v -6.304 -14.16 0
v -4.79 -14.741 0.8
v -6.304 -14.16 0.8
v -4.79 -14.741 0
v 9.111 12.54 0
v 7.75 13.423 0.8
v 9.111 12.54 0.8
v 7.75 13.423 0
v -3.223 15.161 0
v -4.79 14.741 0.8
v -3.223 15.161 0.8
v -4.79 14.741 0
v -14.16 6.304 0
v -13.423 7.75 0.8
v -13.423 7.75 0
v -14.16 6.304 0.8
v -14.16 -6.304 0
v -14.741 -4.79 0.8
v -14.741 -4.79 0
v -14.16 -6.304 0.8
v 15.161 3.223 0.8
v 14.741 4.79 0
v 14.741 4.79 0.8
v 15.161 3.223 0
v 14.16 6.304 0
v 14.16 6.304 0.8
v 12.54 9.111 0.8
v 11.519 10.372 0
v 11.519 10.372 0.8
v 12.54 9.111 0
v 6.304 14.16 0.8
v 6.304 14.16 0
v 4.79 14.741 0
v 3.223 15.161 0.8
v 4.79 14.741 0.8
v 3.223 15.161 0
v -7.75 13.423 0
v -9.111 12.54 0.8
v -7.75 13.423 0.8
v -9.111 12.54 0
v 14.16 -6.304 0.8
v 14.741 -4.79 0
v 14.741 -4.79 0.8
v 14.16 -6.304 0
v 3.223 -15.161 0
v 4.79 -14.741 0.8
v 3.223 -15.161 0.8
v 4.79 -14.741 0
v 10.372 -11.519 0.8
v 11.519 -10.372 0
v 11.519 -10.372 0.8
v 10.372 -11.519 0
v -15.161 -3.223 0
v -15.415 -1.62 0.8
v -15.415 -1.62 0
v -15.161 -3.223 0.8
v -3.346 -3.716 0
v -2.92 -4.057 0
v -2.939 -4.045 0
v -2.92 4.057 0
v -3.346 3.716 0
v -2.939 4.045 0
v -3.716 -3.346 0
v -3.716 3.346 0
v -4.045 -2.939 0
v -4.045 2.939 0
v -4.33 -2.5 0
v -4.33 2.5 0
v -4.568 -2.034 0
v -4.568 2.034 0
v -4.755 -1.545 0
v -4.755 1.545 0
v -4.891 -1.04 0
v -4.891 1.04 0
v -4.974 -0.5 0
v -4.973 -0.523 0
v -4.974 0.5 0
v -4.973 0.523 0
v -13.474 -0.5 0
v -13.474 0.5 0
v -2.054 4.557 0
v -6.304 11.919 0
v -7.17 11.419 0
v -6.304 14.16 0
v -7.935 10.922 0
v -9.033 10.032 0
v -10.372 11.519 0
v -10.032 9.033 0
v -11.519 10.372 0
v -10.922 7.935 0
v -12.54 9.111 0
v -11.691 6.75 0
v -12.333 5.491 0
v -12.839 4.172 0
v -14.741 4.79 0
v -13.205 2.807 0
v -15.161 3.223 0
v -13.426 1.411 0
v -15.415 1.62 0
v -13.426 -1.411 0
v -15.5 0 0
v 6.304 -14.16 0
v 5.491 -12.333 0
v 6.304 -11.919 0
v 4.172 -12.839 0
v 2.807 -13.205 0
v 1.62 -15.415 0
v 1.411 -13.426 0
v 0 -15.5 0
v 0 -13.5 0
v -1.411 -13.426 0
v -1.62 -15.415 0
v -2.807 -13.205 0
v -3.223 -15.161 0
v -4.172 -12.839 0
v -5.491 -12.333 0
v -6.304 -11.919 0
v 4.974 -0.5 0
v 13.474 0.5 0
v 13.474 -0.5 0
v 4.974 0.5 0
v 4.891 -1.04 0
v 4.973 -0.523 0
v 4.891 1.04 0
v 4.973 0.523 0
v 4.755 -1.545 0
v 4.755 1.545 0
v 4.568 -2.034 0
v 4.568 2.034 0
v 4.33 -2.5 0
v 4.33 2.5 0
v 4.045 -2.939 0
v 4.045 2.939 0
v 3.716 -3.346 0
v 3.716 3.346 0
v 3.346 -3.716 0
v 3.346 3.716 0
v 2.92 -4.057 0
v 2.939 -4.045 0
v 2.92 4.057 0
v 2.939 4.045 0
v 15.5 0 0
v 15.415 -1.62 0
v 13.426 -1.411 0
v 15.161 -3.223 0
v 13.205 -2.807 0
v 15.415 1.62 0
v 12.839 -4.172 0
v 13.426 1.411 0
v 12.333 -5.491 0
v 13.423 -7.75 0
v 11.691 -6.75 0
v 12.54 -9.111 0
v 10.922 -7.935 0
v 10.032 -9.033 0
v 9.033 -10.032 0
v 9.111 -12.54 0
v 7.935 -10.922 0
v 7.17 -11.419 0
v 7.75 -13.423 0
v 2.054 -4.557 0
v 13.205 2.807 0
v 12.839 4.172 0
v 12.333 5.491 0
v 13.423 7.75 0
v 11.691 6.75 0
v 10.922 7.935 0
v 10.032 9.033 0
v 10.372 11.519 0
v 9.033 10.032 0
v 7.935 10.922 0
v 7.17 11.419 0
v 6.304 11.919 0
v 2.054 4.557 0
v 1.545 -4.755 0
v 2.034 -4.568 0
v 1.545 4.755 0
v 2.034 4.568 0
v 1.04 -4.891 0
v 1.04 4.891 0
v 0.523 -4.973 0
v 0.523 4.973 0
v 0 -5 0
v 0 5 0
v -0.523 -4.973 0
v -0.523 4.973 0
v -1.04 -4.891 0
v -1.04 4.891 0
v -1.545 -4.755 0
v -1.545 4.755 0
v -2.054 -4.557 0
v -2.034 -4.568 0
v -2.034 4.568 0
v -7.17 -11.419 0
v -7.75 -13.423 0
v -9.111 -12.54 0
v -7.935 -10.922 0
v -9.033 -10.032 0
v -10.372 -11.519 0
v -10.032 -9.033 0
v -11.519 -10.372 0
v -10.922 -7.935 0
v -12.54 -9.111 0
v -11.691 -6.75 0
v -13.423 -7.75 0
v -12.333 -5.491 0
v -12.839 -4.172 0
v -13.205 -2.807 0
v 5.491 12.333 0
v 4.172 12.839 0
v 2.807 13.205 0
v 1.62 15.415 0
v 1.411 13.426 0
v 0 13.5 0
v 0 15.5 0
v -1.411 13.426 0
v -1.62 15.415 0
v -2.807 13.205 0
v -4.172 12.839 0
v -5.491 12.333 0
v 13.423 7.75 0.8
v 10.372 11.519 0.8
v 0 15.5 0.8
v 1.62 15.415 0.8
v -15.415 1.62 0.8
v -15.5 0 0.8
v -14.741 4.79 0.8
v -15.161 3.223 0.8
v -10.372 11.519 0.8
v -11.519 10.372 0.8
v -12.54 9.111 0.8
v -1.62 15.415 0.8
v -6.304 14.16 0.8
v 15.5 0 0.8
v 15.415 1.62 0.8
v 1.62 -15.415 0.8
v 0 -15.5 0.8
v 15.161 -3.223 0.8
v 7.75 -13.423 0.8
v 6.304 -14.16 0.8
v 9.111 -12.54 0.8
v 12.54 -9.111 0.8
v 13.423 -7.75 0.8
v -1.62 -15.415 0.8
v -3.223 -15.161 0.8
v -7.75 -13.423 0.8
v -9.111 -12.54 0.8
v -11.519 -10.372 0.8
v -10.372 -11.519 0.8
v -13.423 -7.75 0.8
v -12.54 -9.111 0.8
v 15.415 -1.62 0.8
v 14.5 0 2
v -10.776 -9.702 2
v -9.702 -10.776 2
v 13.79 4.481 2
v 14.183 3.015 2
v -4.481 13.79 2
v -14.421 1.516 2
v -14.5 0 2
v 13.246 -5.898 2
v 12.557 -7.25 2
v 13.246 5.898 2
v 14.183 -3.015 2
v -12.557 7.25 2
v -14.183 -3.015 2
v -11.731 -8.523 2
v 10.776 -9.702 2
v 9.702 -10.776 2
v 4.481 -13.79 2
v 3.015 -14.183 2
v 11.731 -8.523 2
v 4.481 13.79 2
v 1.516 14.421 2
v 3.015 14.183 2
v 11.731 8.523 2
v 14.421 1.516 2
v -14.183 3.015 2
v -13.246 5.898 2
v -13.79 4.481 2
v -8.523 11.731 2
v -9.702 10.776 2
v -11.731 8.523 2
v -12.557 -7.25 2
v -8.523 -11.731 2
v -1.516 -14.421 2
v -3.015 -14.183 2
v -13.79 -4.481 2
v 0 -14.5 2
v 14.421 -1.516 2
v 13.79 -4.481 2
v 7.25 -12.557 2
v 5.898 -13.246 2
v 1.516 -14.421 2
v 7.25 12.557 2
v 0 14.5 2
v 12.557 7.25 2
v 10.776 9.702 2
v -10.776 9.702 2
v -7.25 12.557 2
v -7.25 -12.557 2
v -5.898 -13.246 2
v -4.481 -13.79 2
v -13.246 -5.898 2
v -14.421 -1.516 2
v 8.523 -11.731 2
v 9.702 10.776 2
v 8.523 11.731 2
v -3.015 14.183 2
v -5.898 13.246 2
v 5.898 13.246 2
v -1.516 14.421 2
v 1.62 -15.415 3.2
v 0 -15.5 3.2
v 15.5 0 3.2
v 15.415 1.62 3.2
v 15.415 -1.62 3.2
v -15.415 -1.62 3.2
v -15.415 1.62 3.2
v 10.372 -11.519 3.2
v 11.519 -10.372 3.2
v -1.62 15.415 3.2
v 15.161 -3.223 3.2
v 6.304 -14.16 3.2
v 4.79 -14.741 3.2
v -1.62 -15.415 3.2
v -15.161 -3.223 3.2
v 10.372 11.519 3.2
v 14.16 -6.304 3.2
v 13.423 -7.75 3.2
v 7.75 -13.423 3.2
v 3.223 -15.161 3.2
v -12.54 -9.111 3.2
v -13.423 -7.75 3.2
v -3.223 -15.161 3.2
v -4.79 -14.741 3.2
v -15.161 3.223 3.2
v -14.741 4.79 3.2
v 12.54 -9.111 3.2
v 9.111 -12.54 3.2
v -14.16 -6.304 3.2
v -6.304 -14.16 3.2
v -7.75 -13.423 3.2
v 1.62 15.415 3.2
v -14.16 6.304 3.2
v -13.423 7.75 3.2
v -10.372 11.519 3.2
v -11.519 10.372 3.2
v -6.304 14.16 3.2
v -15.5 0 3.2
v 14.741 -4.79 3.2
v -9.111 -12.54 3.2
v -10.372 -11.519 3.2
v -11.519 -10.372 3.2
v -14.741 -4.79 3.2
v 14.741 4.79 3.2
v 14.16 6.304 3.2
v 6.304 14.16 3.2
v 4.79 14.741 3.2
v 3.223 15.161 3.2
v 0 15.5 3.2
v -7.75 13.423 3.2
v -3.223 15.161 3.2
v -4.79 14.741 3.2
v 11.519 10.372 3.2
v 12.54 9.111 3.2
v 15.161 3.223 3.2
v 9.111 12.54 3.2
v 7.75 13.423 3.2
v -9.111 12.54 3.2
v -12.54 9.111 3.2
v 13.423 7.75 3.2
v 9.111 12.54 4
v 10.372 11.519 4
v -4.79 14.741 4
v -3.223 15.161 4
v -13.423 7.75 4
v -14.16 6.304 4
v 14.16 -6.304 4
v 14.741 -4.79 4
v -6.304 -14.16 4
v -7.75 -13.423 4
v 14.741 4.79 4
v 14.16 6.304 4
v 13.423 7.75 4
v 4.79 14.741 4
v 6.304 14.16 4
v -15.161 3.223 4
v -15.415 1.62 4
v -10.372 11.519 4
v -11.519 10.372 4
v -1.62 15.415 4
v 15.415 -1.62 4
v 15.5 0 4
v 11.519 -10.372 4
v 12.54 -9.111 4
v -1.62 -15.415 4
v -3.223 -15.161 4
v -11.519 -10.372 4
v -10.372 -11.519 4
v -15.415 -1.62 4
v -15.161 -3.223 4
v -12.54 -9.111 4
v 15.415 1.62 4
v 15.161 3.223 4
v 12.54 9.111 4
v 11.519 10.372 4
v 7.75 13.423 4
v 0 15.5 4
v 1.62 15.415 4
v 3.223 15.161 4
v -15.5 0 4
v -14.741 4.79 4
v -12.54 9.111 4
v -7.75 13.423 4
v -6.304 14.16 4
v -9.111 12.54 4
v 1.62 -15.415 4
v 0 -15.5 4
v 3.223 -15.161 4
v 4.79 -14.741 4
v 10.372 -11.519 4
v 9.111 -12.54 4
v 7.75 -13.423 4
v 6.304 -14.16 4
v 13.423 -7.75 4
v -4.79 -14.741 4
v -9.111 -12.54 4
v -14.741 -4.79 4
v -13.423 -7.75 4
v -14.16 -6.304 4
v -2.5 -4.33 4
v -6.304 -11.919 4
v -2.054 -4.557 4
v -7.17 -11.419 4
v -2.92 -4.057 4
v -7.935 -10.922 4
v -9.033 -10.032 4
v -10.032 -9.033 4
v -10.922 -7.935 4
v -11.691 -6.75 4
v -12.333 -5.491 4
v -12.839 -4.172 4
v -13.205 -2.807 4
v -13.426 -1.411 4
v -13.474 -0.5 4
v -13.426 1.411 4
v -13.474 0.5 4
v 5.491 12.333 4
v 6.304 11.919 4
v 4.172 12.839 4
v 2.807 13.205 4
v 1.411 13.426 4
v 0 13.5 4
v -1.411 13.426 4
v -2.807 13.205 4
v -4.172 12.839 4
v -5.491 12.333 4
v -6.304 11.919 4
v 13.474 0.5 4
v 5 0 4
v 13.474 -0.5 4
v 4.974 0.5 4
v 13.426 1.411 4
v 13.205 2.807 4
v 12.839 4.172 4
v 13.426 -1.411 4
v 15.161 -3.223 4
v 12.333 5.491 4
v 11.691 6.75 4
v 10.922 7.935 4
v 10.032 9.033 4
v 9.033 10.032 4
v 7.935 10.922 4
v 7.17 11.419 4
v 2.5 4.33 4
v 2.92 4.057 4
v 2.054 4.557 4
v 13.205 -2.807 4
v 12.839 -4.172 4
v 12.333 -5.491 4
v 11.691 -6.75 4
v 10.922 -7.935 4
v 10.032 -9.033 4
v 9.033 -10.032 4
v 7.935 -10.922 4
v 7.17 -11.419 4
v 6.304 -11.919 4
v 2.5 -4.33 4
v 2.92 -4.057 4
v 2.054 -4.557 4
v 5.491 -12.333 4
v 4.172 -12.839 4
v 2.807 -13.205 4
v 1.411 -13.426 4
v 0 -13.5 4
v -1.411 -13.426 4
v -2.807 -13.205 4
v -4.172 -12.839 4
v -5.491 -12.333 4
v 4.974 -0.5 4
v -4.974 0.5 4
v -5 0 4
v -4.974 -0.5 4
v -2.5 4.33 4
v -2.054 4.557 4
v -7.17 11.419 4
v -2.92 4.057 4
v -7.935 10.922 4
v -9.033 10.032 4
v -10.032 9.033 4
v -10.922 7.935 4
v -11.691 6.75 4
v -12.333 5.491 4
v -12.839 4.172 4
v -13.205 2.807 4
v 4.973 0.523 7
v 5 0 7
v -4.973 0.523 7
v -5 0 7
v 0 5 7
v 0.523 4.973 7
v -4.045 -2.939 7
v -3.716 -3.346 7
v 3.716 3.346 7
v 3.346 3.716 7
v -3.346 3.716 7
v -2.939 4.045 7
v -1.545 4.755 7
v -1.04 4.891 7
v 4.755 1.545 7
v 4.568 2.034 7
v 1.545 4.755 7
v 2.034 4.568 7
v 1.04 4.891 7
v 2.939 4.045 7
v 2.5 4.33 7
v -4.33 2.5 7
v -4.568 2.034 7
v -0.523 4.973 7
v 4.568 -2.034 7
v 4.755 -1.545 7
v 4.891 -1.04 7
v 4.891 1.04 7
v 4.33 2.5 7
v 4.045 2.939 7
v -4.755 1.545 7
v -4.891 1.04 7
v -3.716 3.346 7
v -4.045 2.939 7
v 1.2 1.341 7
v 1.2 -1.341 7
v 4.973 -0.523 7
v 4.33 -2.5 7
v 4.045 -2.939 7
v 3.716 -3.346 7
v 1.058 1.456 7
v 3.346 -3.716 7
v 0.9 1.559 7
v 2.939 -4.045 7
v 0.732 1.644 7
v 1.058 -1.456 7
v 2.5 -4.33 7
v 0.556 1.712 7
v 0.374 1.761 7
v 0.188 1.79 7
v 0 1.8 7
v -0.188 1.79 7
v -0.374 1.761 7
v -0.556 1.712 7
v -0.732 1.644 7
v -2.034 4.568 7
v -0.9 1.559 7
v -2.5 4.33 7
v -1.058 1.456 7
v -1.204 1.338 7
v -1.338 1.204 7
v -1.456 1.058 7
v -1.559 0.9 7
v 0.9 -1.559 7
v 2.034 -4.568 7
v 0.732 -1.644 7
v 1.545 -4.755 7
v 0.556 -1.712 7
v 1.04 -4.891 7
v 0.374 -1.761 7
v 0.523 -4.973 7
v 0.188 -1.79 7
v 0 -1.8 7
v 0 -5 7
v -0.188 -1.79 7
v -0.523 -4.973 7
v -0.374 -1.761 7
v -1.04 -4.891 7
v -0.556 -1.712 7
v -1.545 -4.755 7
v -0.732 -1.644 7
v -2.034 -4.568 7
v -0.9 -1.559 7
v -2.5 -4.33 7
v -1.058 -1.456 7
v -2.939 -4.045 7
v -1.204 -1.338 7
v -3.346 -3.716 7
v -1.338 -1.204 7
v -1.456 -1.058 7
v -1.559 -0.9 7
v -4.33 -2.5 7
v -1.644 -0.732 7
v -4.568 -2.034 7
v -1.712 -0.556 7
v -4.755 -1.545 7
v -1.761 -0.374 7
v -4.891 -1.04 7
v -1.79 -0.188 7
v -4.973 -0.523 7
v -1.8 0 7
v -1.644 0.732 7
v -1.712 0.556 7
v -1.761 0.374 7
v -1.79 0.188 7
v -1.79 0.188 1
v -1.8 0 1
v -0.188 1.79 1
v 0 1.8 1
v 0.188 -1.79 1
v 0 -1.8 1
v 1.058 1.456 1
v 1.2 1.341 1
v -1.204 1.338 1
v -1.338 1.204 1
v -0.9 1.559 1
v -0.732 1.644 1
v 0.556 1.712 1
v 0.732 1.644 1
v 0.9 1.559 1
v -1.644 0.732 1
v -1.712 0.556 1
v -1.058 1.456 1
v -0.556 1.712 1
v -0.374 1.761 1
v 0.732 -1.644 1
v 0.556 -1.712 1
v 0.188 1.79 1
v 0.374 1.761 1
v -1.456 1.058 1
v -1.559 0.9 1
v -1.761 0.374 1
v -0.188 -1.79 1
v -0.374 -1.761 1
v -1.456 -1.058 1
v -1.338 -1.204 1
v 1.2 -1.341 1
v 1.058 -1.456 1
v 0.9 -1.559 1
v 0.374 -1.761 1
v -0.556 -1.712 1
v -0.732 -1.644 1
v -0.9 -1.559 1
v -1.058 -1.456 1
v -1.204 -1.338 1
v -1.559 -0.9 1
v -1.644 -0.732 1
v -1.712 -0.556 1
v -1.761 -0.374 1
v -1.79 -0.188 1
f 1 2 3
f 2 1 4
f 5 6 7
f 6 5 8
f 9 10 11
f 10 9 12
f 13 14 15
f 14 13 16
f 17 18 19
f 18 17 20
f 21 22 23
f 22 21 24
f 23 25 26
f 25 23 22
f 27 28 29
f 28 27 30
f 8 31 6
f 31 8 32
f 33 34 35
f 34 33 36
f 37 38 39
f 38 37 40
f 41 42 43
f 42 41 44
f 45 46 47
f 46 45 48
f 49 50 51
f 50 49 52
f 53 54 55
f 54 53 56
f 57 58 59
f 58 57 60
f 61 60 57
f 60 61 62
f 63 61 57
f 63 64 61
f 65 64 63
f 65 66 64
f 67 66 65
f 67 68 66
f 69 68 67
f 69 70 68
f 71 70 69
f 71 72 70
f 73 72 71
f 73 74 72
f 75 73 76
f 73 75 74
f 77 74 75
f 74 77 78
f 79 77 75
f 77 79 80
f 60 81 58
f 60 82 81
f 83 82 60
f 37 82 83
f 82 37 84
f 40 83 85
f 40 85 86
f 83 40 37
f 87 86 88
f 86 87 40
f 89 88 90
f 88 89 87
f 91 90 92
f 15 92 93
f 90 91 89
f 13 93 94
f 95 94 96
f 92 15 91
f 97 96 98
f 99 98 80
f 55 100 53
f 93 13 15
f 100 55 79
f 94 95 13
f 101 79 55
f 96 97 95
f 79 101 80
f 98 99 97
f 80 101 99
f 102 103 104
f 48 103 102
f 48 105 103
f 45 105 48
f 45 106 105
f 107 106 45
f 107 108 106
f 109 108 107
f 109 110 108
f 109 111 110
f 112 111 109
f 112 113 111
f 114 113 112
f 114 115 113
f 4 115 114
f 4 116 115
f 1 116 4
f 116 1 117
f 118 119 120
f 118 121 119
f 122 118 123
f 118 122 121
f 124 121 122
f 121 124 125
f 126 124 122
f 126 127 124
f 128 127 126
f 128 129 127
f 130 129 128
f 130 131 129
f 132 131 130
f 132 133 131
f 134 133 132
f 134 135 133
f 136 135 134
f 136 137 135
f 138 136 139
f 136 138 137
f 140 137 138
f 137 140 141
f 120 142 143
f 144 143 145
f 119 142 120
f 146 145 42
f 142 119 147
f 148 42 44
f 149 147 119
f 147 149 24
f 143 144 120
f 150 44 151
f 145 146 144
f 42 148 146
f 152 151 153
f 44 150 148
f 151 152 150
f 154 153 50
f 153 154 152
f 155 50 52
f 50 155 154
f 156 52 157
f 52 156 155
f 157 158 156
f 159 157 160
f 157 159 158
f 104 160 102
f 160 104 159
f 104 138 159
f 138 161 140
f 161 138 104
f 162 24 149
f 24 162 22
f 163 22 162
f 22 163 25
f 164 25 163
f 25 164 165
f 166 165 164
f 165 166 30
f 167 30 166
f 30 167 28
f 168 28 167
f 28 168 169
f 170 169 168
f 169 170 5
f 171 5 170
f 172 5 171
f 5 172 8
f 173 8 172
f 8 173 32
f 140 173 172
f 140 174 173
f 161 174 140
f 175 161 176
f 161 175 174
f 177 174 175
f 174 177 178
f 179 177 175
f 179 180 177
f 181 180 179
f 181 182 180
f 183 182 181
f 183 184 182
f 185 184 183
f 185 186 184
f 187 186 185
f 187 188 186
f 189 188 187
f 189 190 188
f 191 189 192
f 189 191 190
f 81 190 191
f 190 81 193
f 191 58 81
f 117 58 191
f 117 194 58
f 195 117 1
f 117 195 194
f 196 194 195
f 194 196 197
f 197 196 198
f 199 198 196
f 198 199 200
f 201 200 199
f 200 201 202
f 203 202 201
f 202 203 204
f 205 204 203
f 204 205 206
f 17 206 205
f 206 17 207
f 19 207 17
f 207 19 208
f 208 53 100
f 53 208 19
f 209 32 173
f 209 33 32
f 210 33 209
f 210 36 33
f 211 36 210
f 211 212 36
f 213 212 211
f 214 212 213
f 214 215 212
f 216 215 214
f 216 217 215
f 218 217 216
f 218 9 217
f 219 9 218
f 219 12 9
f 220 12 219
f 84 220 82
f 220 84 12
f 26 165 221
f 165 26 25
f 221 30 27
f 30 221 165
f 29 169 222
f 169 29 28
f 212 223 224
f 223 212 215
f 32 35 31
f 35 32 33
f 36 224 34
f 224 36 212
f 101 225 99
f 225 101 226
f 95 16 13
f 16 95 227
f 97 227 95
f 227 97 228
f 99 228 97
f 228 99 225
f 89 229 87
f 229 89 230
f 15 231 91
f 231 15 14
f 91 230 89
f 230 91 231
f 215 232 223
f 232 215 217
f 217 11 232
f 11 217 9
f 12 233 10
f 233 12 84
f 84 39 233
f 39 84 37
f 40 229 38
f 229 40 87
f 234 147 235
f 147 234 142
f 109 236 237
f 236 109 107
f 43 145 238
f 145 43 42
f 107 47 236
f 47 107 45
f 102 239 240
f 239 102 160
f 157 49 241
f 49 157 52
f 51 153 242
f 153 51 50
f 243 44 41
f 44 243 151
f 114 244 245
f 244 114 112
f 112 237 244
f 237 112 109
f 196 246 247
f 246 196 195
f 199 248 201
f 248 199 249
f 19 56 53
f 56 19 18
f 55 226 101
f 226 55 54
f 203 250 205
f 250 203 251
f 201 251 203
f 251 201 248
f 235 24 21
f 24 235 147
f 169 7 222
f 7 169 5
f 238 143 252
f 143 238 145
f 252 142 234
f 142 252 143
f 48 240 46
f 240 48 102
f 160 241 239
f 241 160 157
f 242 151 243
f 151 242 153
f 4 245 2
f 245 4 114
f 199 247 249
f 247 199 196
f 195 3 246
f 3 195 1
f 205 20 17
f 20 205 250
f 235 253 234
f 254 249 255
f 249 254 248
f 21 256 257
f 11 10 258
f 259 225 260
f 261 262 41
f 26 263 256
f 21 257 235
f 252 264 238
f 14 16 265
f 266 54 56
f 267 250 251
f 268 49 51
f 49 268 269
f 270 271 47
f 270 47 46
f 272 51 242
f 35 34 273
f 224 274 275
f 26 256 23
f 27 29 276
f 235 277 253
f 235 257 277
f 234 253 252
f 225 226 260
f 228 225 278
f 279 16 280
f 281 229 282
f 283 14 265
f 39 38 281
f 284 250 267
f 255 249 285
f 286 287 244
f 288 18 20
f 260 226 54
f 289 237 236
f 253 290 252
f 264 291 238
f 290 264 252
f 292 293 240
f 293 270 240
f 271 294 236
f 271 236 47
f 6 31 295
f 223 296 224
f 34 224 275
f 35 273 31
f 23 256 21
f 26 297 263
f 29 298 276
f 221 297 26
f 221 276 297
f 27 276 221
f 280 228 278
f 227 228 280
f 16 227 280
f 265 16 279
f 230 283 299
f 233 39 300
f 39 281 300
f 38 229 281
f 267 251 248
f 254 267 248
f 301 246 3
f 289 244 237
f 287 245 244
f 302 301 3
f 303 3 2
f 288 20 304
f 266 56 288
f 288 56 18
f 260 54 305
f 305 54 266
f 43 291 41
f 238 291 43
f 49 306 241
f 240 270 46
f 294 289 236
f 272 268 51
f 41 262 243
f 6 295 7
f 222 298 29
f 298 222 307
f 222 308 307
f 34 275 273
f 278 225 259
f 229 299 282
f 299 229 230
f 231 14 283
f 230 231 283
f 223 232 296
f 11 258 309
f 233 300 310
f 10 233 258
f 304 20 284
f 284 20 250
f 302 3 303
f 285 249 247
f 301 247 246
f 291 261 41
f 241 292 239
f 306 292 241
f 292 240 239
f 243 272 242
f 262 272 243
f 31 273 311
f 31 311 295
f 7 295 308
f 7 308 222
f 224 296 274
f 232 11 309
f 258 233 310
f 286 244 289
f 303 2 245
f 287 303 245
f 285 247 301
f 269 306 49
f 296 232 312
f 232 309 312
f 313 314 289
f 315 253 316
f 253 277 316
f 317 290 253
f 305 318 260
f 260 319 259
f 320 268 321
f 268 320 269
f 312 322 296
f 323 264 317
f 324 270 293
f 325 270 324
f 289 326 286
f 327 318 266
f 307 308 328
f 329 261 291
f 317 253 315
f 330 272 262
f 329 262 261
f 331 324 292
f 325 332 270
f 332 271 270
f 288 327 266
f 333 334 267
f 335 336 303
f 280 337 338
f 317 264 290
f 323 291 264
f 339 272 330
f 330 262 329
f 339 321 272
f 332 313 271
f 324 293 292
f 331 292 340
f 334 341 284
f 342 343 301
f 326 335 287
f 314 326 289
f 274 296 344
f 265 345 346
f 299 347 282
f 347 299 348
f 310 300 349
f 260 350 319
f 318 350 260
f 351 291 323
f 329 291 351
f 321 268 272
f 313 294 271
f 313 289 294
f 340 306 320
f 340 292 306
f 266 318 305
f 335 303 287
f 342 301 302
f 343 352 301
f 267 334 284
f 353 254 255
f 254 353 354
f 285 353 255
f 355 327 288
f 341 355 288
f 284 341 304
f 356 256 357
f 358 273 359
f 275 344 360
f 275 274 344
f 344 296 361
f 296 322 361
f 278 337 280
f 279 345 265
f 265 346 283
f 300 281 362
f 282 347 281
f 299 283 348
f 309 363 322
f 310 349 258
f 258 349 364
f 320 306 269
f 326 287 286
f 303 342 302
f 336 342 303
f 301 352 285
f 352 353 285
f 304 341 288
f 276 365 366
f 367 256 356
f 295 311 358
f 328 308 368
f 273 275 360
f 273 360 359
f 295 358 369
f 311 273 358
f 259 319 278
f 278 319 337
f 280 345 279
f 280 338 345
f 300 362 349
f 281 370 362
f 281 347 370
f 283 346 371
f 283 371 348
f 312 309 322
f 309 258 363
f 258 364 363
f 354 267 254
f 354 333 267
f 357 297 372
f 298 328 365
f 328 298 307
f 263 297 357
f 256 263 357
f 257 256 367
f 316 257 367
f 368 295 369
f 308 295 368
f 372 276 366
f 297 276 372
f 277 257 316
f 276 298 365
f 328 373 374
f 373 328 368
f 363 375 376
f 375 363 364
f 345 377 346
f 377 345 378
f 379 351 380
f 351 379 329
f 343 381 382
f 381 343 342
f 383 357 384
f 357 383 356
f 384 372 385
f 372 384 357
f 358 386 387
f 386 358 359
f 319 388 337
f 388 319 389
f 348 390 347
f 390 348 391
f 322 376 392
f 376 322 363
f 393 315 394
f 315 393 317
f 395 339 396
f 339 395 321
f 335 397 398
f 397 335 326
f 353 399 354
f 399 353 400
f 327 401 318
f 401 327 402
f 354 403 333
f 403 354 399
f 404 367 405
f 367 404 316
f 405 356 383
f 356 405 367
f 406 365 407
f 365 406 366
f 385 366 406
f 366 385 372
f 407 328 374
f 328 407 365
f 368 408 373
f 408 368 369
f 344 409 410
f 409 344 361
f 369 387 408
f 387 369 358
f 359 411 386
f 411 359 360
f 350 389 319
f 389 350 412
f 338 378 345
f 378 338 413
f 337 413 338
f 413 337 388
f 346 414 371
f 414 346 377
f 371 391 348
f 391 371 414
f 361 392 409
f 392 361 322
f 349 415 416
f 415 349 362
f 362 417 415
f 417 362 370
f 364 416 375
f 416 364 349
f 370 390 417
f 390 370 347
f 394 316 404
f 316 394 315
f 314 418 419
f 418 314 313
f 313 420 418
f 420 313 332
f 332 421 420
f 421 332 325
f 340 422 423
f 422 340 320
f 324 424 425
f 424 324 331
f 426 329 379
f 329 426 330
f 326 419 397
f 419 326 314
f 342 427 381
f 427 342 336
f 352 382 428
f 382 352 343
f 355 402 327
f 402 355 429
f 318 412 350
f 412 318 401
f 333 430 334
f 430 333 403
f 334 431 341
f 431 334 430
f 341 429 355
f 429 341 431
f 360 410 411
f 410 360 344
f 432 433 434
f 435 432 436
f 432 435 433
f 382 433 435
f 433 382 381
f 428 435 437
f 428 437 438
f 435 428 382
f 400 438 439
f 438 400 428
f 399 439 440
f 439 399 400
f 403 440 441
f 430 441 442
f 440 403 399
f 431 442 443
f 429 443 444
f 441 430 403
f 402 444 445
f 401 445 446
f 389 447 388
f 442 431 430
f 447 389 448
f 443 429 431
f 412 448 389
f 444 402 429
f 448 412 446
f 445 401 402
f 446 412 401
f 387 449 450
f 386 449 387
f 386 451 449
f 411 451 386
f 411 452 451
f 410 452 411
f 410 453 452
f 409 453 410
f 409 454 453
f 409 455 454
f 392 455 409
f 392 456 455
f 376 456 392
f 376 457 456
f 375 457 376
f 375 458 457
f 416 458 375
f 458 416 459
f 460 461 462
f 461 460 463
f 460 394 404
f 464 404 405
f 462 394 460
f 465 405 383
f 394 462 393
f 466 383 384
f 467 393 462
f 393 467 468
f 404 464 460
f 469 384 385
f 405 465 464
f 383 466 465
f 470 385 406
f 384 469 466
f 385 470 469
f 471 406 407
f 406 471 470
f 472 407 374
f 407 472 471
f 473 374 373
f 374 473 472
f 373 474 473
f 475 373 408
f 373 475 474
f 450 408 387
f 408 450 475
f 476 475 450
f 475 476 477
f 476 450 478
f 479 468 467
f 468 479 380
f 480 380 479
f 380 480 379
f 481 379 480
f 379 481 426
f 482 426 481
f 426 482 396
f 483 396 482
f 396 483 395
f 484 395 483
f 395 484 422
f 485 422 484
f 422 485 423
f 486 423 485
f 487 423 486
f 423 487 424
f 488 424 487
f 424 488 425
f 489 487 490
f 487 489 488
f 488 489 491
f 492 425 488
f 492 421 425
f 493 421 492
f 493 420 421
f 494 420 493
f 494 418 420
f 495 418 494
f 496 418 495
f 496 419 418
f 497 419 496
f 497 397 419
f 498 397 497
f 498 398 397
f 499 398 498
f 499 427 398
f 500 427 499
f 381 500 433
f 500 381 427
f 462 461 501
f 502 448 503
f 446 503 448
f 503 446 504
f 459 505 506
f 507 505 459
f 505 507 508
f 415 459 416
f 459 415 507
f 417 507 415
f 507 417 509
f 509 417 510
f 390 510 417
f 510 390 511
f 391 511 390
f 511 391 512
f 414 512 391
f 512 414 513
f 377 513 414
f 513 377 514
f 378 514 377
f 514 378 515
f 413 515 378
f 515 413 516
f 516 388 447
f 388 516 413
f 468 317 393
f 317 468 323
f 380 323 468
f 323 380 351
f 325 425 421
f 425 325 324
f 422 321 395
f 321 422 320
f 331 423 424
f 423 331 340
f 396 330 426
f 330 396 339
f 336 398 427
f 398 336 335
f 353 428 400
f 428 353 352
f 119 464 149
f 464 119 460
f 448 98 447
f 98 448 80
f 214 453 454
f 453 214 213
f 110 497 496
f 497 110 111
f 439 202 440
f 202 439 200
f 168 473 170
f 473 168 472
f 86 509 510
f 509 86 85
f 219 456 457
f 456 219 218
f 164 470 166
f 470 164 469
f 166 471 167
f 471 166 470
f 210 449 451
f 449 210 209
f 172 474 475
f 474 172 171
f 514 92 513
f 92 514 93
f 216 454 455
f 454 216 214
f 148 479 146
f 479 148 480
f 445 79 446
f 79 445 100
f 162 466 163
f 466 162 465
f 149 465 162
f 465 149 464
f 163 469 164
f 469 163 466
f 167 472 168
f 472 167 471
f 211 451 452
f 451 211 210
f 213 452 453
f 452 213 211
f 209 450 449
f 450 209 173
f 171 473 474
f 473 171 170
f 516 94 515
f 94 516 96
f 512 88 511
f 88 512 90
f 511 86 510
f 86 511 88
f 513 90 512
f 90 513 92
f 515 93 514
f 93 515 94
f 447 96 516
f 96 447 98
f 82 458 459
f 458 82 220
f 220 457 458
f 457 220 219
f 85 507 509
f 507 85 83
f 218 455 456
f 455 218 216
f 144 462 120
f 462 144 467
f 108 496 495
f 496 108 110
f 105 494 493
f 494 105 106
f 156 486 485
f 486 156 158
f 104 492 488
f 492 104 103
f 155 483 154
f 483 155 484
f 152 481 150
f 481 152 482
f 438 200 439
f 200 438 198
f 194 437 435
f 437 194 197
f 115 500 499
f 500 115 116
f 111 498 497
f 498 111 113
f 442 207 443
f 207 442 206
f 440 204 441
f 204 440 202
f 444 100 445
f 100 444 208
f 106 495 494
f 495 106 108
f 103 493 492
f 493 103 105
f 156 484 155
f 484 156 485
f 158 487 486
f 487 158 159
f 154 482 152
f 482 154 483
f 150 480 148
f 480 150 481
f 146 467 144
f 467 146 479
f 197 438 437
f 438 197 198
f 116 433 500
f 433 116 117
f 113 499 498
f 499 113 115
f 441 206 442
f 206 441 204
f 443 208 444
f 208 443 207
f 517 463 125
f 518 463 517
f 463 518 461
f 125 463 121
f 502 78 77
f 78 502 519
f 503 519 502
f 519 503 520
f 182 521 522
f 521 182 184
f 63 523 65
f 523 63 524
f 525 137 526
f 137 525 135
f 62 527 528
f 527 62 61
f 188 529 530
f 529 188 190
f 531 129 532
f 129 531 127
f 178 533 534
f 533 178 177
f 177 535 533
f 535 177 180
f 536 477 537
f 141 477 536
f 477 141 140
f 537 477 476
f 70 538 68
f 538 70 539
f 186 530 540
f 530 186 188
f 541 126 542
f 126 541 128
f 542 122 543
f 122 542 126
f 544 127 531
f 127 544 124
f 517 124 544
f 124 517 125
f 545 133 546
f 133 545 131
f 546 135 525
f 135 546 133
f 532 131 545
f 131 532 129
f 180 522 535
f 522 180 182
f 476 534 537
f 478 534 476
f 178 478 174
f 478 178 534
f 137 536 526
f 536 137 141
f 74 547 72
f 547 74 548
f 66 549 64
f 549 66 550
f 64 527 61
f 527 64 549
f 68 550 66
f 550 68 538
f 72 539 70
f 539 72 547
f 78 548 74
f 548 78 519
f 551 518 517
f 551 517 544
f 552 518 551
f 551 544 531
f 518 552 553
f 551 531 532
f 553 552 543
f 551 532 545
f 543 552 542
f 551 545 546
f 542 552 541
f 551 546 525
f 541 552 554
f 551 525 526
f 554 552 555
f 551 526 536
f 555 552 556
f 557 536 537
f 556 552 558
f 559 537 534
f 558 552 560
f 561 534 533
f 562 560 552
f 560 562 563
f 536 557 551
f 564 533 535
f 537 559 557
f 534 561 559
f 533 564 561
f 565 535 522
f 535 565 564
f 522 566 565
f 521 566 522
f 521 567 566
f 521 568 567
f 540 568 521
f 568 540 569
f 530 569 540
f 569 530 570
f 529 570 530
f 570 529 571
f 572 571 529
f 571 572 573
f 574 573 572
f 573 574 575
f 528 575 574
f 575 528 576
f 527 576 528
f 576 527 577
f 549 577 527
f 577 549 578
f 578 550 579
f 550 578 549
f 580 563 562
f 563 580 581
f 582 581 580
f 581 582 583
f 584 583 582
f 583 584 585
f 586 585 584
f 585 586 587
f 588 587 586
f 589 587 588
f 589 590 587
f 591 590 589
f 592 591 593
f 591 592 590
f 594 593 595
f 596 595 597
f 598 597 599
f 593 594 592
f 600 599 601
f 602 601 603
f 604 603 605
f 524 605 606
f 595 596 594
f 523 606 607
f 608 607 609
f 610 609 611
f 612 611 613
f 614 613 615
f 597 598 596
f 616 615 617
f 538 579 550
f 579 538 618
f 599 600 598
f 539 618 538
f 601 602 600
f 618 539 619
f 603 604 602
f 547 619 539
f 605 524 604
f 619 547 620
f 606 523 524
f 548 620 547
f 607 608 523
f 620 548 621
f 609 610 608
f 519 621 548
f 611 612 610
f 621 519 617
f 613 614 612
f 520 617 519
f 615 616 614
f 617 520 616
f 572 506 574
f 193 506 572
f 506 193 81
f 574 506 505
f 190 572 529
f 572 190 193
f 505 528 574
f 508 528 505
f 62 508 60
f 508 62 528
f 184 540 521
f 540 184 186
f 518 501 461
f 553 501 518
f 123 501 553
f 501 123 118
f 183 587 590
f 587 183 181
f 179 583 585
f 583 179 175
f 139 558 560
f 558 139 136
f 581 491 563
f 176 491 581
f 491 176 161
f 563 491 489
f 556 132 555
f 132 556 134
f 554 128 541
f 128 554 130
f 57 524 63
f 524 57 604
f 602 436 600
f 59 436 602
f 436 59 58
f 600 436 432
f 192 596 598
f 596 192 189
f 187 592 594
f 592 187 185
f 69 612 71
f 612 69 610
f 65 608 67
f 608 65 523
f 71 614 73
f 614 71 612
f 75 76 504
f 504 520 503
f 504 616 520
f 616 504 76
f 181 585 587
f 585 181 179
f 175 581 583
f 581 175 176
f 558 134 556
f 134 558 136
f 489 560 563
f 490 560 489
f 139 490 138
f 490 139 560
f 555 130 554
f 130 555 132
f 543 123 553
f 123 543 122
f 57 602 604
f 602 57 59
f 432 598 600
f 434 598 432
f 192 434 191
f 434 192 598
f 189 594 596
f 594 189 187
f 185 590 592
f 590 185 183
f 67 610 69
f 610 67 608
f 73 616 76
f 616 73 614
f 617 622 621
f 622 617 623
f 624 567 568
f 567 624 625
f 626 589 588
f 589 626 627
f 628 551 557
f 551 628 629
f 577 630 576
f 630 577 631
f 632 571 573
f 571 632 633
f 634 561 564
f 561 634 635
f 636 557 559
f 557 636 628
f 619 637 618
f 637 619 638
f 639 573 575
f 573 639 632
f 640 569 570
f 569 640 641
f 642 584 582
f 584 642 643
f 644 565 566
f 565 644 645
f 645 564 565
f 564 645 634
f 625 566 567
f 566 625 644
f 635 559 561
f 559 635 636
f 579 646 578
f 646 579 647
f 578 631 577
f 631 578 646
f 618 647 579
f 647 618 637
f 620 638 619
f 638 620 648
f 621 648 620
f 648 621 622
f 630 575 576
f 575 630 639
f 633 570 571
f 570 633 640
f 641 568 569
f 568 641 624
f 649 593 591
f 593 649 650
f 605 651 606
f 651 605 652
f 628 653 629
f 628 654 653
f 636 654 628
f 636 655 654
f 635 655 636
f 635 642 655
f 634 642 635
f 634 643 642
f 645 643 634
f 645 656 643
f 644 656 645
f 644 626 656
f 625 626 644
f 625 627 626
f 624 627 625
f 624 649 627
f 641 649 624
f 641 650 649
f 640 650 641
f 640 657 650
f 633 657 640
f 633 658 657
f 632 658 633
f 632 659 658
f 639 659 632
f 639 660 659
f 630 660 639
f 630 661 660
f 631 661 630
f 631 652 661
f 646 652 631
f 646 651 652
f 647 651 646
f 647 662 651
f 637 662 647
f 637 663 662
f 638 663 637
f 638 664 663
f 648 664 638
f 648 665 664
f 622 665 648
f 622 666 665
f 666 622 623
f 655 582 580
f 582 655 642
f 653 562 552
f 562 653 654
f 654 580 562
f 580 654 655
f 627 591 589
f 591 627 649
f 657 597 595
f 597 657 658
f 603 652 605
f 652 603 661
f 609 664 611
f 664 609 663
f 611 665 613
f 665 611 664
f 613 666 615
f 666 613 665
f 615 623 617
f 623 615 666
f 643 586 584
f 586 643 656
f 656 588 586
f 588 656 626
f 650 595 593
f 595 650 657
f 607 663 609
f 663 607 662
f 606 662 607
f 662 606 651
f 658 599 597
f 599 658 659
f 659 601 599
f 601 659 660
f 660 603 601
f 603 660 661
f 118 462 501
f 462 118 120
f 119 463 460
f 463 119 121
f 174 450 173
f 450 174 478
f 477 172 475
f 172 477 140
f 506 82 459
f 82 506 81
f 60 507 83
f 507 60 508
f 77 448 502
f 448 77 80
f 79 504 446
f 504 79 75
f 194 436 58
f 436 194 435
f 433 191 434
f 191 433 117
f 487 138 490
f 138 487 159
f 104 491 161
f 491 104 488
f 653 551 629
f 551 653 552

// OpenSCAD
// Roda de 32mm (amb junta tòrica) i tope per a micromotor de 3mm de eix
$fn=60;
d_eje=3.6;
r_ext=15.5;

union(){
    difference() {
        union(){
            cylinder(h=.8,r1=r_ext,r2=r_ext);
            translate([0,0,.8]){
                cylinder(h=1.2,r1=r_ext,r2=r_ext-1);
            }
            translate([0,0,2]){
                cylinder(h=1.2,r1=r_ext-1,r2=r_ext);
            }
            translate([0,0,3.2]){
                cylinder(h=.8,r1=r_ext,r2=r_ext);
            }
        }
        translate([0,0,-1]){
            cylinder(h=6,r=r_ext-2);
        }
    }        
    difference(){
        cylinder(h=7,d=10);
        translate([0,0,1]){ // tope al forat de l'eix de la roda
            cylinder(h=8.5,d=d_eje); // forat eix roda
        }
    }
    translate([1.20,-2,0]){
        cube(size=[2,4,7]);
    }
    for(i=[0:60:300]){
        rotate([0,0,i]){
            translate([2,-0.5,0]){
                cube([12,1,4]);
            }
        }
    }
}
